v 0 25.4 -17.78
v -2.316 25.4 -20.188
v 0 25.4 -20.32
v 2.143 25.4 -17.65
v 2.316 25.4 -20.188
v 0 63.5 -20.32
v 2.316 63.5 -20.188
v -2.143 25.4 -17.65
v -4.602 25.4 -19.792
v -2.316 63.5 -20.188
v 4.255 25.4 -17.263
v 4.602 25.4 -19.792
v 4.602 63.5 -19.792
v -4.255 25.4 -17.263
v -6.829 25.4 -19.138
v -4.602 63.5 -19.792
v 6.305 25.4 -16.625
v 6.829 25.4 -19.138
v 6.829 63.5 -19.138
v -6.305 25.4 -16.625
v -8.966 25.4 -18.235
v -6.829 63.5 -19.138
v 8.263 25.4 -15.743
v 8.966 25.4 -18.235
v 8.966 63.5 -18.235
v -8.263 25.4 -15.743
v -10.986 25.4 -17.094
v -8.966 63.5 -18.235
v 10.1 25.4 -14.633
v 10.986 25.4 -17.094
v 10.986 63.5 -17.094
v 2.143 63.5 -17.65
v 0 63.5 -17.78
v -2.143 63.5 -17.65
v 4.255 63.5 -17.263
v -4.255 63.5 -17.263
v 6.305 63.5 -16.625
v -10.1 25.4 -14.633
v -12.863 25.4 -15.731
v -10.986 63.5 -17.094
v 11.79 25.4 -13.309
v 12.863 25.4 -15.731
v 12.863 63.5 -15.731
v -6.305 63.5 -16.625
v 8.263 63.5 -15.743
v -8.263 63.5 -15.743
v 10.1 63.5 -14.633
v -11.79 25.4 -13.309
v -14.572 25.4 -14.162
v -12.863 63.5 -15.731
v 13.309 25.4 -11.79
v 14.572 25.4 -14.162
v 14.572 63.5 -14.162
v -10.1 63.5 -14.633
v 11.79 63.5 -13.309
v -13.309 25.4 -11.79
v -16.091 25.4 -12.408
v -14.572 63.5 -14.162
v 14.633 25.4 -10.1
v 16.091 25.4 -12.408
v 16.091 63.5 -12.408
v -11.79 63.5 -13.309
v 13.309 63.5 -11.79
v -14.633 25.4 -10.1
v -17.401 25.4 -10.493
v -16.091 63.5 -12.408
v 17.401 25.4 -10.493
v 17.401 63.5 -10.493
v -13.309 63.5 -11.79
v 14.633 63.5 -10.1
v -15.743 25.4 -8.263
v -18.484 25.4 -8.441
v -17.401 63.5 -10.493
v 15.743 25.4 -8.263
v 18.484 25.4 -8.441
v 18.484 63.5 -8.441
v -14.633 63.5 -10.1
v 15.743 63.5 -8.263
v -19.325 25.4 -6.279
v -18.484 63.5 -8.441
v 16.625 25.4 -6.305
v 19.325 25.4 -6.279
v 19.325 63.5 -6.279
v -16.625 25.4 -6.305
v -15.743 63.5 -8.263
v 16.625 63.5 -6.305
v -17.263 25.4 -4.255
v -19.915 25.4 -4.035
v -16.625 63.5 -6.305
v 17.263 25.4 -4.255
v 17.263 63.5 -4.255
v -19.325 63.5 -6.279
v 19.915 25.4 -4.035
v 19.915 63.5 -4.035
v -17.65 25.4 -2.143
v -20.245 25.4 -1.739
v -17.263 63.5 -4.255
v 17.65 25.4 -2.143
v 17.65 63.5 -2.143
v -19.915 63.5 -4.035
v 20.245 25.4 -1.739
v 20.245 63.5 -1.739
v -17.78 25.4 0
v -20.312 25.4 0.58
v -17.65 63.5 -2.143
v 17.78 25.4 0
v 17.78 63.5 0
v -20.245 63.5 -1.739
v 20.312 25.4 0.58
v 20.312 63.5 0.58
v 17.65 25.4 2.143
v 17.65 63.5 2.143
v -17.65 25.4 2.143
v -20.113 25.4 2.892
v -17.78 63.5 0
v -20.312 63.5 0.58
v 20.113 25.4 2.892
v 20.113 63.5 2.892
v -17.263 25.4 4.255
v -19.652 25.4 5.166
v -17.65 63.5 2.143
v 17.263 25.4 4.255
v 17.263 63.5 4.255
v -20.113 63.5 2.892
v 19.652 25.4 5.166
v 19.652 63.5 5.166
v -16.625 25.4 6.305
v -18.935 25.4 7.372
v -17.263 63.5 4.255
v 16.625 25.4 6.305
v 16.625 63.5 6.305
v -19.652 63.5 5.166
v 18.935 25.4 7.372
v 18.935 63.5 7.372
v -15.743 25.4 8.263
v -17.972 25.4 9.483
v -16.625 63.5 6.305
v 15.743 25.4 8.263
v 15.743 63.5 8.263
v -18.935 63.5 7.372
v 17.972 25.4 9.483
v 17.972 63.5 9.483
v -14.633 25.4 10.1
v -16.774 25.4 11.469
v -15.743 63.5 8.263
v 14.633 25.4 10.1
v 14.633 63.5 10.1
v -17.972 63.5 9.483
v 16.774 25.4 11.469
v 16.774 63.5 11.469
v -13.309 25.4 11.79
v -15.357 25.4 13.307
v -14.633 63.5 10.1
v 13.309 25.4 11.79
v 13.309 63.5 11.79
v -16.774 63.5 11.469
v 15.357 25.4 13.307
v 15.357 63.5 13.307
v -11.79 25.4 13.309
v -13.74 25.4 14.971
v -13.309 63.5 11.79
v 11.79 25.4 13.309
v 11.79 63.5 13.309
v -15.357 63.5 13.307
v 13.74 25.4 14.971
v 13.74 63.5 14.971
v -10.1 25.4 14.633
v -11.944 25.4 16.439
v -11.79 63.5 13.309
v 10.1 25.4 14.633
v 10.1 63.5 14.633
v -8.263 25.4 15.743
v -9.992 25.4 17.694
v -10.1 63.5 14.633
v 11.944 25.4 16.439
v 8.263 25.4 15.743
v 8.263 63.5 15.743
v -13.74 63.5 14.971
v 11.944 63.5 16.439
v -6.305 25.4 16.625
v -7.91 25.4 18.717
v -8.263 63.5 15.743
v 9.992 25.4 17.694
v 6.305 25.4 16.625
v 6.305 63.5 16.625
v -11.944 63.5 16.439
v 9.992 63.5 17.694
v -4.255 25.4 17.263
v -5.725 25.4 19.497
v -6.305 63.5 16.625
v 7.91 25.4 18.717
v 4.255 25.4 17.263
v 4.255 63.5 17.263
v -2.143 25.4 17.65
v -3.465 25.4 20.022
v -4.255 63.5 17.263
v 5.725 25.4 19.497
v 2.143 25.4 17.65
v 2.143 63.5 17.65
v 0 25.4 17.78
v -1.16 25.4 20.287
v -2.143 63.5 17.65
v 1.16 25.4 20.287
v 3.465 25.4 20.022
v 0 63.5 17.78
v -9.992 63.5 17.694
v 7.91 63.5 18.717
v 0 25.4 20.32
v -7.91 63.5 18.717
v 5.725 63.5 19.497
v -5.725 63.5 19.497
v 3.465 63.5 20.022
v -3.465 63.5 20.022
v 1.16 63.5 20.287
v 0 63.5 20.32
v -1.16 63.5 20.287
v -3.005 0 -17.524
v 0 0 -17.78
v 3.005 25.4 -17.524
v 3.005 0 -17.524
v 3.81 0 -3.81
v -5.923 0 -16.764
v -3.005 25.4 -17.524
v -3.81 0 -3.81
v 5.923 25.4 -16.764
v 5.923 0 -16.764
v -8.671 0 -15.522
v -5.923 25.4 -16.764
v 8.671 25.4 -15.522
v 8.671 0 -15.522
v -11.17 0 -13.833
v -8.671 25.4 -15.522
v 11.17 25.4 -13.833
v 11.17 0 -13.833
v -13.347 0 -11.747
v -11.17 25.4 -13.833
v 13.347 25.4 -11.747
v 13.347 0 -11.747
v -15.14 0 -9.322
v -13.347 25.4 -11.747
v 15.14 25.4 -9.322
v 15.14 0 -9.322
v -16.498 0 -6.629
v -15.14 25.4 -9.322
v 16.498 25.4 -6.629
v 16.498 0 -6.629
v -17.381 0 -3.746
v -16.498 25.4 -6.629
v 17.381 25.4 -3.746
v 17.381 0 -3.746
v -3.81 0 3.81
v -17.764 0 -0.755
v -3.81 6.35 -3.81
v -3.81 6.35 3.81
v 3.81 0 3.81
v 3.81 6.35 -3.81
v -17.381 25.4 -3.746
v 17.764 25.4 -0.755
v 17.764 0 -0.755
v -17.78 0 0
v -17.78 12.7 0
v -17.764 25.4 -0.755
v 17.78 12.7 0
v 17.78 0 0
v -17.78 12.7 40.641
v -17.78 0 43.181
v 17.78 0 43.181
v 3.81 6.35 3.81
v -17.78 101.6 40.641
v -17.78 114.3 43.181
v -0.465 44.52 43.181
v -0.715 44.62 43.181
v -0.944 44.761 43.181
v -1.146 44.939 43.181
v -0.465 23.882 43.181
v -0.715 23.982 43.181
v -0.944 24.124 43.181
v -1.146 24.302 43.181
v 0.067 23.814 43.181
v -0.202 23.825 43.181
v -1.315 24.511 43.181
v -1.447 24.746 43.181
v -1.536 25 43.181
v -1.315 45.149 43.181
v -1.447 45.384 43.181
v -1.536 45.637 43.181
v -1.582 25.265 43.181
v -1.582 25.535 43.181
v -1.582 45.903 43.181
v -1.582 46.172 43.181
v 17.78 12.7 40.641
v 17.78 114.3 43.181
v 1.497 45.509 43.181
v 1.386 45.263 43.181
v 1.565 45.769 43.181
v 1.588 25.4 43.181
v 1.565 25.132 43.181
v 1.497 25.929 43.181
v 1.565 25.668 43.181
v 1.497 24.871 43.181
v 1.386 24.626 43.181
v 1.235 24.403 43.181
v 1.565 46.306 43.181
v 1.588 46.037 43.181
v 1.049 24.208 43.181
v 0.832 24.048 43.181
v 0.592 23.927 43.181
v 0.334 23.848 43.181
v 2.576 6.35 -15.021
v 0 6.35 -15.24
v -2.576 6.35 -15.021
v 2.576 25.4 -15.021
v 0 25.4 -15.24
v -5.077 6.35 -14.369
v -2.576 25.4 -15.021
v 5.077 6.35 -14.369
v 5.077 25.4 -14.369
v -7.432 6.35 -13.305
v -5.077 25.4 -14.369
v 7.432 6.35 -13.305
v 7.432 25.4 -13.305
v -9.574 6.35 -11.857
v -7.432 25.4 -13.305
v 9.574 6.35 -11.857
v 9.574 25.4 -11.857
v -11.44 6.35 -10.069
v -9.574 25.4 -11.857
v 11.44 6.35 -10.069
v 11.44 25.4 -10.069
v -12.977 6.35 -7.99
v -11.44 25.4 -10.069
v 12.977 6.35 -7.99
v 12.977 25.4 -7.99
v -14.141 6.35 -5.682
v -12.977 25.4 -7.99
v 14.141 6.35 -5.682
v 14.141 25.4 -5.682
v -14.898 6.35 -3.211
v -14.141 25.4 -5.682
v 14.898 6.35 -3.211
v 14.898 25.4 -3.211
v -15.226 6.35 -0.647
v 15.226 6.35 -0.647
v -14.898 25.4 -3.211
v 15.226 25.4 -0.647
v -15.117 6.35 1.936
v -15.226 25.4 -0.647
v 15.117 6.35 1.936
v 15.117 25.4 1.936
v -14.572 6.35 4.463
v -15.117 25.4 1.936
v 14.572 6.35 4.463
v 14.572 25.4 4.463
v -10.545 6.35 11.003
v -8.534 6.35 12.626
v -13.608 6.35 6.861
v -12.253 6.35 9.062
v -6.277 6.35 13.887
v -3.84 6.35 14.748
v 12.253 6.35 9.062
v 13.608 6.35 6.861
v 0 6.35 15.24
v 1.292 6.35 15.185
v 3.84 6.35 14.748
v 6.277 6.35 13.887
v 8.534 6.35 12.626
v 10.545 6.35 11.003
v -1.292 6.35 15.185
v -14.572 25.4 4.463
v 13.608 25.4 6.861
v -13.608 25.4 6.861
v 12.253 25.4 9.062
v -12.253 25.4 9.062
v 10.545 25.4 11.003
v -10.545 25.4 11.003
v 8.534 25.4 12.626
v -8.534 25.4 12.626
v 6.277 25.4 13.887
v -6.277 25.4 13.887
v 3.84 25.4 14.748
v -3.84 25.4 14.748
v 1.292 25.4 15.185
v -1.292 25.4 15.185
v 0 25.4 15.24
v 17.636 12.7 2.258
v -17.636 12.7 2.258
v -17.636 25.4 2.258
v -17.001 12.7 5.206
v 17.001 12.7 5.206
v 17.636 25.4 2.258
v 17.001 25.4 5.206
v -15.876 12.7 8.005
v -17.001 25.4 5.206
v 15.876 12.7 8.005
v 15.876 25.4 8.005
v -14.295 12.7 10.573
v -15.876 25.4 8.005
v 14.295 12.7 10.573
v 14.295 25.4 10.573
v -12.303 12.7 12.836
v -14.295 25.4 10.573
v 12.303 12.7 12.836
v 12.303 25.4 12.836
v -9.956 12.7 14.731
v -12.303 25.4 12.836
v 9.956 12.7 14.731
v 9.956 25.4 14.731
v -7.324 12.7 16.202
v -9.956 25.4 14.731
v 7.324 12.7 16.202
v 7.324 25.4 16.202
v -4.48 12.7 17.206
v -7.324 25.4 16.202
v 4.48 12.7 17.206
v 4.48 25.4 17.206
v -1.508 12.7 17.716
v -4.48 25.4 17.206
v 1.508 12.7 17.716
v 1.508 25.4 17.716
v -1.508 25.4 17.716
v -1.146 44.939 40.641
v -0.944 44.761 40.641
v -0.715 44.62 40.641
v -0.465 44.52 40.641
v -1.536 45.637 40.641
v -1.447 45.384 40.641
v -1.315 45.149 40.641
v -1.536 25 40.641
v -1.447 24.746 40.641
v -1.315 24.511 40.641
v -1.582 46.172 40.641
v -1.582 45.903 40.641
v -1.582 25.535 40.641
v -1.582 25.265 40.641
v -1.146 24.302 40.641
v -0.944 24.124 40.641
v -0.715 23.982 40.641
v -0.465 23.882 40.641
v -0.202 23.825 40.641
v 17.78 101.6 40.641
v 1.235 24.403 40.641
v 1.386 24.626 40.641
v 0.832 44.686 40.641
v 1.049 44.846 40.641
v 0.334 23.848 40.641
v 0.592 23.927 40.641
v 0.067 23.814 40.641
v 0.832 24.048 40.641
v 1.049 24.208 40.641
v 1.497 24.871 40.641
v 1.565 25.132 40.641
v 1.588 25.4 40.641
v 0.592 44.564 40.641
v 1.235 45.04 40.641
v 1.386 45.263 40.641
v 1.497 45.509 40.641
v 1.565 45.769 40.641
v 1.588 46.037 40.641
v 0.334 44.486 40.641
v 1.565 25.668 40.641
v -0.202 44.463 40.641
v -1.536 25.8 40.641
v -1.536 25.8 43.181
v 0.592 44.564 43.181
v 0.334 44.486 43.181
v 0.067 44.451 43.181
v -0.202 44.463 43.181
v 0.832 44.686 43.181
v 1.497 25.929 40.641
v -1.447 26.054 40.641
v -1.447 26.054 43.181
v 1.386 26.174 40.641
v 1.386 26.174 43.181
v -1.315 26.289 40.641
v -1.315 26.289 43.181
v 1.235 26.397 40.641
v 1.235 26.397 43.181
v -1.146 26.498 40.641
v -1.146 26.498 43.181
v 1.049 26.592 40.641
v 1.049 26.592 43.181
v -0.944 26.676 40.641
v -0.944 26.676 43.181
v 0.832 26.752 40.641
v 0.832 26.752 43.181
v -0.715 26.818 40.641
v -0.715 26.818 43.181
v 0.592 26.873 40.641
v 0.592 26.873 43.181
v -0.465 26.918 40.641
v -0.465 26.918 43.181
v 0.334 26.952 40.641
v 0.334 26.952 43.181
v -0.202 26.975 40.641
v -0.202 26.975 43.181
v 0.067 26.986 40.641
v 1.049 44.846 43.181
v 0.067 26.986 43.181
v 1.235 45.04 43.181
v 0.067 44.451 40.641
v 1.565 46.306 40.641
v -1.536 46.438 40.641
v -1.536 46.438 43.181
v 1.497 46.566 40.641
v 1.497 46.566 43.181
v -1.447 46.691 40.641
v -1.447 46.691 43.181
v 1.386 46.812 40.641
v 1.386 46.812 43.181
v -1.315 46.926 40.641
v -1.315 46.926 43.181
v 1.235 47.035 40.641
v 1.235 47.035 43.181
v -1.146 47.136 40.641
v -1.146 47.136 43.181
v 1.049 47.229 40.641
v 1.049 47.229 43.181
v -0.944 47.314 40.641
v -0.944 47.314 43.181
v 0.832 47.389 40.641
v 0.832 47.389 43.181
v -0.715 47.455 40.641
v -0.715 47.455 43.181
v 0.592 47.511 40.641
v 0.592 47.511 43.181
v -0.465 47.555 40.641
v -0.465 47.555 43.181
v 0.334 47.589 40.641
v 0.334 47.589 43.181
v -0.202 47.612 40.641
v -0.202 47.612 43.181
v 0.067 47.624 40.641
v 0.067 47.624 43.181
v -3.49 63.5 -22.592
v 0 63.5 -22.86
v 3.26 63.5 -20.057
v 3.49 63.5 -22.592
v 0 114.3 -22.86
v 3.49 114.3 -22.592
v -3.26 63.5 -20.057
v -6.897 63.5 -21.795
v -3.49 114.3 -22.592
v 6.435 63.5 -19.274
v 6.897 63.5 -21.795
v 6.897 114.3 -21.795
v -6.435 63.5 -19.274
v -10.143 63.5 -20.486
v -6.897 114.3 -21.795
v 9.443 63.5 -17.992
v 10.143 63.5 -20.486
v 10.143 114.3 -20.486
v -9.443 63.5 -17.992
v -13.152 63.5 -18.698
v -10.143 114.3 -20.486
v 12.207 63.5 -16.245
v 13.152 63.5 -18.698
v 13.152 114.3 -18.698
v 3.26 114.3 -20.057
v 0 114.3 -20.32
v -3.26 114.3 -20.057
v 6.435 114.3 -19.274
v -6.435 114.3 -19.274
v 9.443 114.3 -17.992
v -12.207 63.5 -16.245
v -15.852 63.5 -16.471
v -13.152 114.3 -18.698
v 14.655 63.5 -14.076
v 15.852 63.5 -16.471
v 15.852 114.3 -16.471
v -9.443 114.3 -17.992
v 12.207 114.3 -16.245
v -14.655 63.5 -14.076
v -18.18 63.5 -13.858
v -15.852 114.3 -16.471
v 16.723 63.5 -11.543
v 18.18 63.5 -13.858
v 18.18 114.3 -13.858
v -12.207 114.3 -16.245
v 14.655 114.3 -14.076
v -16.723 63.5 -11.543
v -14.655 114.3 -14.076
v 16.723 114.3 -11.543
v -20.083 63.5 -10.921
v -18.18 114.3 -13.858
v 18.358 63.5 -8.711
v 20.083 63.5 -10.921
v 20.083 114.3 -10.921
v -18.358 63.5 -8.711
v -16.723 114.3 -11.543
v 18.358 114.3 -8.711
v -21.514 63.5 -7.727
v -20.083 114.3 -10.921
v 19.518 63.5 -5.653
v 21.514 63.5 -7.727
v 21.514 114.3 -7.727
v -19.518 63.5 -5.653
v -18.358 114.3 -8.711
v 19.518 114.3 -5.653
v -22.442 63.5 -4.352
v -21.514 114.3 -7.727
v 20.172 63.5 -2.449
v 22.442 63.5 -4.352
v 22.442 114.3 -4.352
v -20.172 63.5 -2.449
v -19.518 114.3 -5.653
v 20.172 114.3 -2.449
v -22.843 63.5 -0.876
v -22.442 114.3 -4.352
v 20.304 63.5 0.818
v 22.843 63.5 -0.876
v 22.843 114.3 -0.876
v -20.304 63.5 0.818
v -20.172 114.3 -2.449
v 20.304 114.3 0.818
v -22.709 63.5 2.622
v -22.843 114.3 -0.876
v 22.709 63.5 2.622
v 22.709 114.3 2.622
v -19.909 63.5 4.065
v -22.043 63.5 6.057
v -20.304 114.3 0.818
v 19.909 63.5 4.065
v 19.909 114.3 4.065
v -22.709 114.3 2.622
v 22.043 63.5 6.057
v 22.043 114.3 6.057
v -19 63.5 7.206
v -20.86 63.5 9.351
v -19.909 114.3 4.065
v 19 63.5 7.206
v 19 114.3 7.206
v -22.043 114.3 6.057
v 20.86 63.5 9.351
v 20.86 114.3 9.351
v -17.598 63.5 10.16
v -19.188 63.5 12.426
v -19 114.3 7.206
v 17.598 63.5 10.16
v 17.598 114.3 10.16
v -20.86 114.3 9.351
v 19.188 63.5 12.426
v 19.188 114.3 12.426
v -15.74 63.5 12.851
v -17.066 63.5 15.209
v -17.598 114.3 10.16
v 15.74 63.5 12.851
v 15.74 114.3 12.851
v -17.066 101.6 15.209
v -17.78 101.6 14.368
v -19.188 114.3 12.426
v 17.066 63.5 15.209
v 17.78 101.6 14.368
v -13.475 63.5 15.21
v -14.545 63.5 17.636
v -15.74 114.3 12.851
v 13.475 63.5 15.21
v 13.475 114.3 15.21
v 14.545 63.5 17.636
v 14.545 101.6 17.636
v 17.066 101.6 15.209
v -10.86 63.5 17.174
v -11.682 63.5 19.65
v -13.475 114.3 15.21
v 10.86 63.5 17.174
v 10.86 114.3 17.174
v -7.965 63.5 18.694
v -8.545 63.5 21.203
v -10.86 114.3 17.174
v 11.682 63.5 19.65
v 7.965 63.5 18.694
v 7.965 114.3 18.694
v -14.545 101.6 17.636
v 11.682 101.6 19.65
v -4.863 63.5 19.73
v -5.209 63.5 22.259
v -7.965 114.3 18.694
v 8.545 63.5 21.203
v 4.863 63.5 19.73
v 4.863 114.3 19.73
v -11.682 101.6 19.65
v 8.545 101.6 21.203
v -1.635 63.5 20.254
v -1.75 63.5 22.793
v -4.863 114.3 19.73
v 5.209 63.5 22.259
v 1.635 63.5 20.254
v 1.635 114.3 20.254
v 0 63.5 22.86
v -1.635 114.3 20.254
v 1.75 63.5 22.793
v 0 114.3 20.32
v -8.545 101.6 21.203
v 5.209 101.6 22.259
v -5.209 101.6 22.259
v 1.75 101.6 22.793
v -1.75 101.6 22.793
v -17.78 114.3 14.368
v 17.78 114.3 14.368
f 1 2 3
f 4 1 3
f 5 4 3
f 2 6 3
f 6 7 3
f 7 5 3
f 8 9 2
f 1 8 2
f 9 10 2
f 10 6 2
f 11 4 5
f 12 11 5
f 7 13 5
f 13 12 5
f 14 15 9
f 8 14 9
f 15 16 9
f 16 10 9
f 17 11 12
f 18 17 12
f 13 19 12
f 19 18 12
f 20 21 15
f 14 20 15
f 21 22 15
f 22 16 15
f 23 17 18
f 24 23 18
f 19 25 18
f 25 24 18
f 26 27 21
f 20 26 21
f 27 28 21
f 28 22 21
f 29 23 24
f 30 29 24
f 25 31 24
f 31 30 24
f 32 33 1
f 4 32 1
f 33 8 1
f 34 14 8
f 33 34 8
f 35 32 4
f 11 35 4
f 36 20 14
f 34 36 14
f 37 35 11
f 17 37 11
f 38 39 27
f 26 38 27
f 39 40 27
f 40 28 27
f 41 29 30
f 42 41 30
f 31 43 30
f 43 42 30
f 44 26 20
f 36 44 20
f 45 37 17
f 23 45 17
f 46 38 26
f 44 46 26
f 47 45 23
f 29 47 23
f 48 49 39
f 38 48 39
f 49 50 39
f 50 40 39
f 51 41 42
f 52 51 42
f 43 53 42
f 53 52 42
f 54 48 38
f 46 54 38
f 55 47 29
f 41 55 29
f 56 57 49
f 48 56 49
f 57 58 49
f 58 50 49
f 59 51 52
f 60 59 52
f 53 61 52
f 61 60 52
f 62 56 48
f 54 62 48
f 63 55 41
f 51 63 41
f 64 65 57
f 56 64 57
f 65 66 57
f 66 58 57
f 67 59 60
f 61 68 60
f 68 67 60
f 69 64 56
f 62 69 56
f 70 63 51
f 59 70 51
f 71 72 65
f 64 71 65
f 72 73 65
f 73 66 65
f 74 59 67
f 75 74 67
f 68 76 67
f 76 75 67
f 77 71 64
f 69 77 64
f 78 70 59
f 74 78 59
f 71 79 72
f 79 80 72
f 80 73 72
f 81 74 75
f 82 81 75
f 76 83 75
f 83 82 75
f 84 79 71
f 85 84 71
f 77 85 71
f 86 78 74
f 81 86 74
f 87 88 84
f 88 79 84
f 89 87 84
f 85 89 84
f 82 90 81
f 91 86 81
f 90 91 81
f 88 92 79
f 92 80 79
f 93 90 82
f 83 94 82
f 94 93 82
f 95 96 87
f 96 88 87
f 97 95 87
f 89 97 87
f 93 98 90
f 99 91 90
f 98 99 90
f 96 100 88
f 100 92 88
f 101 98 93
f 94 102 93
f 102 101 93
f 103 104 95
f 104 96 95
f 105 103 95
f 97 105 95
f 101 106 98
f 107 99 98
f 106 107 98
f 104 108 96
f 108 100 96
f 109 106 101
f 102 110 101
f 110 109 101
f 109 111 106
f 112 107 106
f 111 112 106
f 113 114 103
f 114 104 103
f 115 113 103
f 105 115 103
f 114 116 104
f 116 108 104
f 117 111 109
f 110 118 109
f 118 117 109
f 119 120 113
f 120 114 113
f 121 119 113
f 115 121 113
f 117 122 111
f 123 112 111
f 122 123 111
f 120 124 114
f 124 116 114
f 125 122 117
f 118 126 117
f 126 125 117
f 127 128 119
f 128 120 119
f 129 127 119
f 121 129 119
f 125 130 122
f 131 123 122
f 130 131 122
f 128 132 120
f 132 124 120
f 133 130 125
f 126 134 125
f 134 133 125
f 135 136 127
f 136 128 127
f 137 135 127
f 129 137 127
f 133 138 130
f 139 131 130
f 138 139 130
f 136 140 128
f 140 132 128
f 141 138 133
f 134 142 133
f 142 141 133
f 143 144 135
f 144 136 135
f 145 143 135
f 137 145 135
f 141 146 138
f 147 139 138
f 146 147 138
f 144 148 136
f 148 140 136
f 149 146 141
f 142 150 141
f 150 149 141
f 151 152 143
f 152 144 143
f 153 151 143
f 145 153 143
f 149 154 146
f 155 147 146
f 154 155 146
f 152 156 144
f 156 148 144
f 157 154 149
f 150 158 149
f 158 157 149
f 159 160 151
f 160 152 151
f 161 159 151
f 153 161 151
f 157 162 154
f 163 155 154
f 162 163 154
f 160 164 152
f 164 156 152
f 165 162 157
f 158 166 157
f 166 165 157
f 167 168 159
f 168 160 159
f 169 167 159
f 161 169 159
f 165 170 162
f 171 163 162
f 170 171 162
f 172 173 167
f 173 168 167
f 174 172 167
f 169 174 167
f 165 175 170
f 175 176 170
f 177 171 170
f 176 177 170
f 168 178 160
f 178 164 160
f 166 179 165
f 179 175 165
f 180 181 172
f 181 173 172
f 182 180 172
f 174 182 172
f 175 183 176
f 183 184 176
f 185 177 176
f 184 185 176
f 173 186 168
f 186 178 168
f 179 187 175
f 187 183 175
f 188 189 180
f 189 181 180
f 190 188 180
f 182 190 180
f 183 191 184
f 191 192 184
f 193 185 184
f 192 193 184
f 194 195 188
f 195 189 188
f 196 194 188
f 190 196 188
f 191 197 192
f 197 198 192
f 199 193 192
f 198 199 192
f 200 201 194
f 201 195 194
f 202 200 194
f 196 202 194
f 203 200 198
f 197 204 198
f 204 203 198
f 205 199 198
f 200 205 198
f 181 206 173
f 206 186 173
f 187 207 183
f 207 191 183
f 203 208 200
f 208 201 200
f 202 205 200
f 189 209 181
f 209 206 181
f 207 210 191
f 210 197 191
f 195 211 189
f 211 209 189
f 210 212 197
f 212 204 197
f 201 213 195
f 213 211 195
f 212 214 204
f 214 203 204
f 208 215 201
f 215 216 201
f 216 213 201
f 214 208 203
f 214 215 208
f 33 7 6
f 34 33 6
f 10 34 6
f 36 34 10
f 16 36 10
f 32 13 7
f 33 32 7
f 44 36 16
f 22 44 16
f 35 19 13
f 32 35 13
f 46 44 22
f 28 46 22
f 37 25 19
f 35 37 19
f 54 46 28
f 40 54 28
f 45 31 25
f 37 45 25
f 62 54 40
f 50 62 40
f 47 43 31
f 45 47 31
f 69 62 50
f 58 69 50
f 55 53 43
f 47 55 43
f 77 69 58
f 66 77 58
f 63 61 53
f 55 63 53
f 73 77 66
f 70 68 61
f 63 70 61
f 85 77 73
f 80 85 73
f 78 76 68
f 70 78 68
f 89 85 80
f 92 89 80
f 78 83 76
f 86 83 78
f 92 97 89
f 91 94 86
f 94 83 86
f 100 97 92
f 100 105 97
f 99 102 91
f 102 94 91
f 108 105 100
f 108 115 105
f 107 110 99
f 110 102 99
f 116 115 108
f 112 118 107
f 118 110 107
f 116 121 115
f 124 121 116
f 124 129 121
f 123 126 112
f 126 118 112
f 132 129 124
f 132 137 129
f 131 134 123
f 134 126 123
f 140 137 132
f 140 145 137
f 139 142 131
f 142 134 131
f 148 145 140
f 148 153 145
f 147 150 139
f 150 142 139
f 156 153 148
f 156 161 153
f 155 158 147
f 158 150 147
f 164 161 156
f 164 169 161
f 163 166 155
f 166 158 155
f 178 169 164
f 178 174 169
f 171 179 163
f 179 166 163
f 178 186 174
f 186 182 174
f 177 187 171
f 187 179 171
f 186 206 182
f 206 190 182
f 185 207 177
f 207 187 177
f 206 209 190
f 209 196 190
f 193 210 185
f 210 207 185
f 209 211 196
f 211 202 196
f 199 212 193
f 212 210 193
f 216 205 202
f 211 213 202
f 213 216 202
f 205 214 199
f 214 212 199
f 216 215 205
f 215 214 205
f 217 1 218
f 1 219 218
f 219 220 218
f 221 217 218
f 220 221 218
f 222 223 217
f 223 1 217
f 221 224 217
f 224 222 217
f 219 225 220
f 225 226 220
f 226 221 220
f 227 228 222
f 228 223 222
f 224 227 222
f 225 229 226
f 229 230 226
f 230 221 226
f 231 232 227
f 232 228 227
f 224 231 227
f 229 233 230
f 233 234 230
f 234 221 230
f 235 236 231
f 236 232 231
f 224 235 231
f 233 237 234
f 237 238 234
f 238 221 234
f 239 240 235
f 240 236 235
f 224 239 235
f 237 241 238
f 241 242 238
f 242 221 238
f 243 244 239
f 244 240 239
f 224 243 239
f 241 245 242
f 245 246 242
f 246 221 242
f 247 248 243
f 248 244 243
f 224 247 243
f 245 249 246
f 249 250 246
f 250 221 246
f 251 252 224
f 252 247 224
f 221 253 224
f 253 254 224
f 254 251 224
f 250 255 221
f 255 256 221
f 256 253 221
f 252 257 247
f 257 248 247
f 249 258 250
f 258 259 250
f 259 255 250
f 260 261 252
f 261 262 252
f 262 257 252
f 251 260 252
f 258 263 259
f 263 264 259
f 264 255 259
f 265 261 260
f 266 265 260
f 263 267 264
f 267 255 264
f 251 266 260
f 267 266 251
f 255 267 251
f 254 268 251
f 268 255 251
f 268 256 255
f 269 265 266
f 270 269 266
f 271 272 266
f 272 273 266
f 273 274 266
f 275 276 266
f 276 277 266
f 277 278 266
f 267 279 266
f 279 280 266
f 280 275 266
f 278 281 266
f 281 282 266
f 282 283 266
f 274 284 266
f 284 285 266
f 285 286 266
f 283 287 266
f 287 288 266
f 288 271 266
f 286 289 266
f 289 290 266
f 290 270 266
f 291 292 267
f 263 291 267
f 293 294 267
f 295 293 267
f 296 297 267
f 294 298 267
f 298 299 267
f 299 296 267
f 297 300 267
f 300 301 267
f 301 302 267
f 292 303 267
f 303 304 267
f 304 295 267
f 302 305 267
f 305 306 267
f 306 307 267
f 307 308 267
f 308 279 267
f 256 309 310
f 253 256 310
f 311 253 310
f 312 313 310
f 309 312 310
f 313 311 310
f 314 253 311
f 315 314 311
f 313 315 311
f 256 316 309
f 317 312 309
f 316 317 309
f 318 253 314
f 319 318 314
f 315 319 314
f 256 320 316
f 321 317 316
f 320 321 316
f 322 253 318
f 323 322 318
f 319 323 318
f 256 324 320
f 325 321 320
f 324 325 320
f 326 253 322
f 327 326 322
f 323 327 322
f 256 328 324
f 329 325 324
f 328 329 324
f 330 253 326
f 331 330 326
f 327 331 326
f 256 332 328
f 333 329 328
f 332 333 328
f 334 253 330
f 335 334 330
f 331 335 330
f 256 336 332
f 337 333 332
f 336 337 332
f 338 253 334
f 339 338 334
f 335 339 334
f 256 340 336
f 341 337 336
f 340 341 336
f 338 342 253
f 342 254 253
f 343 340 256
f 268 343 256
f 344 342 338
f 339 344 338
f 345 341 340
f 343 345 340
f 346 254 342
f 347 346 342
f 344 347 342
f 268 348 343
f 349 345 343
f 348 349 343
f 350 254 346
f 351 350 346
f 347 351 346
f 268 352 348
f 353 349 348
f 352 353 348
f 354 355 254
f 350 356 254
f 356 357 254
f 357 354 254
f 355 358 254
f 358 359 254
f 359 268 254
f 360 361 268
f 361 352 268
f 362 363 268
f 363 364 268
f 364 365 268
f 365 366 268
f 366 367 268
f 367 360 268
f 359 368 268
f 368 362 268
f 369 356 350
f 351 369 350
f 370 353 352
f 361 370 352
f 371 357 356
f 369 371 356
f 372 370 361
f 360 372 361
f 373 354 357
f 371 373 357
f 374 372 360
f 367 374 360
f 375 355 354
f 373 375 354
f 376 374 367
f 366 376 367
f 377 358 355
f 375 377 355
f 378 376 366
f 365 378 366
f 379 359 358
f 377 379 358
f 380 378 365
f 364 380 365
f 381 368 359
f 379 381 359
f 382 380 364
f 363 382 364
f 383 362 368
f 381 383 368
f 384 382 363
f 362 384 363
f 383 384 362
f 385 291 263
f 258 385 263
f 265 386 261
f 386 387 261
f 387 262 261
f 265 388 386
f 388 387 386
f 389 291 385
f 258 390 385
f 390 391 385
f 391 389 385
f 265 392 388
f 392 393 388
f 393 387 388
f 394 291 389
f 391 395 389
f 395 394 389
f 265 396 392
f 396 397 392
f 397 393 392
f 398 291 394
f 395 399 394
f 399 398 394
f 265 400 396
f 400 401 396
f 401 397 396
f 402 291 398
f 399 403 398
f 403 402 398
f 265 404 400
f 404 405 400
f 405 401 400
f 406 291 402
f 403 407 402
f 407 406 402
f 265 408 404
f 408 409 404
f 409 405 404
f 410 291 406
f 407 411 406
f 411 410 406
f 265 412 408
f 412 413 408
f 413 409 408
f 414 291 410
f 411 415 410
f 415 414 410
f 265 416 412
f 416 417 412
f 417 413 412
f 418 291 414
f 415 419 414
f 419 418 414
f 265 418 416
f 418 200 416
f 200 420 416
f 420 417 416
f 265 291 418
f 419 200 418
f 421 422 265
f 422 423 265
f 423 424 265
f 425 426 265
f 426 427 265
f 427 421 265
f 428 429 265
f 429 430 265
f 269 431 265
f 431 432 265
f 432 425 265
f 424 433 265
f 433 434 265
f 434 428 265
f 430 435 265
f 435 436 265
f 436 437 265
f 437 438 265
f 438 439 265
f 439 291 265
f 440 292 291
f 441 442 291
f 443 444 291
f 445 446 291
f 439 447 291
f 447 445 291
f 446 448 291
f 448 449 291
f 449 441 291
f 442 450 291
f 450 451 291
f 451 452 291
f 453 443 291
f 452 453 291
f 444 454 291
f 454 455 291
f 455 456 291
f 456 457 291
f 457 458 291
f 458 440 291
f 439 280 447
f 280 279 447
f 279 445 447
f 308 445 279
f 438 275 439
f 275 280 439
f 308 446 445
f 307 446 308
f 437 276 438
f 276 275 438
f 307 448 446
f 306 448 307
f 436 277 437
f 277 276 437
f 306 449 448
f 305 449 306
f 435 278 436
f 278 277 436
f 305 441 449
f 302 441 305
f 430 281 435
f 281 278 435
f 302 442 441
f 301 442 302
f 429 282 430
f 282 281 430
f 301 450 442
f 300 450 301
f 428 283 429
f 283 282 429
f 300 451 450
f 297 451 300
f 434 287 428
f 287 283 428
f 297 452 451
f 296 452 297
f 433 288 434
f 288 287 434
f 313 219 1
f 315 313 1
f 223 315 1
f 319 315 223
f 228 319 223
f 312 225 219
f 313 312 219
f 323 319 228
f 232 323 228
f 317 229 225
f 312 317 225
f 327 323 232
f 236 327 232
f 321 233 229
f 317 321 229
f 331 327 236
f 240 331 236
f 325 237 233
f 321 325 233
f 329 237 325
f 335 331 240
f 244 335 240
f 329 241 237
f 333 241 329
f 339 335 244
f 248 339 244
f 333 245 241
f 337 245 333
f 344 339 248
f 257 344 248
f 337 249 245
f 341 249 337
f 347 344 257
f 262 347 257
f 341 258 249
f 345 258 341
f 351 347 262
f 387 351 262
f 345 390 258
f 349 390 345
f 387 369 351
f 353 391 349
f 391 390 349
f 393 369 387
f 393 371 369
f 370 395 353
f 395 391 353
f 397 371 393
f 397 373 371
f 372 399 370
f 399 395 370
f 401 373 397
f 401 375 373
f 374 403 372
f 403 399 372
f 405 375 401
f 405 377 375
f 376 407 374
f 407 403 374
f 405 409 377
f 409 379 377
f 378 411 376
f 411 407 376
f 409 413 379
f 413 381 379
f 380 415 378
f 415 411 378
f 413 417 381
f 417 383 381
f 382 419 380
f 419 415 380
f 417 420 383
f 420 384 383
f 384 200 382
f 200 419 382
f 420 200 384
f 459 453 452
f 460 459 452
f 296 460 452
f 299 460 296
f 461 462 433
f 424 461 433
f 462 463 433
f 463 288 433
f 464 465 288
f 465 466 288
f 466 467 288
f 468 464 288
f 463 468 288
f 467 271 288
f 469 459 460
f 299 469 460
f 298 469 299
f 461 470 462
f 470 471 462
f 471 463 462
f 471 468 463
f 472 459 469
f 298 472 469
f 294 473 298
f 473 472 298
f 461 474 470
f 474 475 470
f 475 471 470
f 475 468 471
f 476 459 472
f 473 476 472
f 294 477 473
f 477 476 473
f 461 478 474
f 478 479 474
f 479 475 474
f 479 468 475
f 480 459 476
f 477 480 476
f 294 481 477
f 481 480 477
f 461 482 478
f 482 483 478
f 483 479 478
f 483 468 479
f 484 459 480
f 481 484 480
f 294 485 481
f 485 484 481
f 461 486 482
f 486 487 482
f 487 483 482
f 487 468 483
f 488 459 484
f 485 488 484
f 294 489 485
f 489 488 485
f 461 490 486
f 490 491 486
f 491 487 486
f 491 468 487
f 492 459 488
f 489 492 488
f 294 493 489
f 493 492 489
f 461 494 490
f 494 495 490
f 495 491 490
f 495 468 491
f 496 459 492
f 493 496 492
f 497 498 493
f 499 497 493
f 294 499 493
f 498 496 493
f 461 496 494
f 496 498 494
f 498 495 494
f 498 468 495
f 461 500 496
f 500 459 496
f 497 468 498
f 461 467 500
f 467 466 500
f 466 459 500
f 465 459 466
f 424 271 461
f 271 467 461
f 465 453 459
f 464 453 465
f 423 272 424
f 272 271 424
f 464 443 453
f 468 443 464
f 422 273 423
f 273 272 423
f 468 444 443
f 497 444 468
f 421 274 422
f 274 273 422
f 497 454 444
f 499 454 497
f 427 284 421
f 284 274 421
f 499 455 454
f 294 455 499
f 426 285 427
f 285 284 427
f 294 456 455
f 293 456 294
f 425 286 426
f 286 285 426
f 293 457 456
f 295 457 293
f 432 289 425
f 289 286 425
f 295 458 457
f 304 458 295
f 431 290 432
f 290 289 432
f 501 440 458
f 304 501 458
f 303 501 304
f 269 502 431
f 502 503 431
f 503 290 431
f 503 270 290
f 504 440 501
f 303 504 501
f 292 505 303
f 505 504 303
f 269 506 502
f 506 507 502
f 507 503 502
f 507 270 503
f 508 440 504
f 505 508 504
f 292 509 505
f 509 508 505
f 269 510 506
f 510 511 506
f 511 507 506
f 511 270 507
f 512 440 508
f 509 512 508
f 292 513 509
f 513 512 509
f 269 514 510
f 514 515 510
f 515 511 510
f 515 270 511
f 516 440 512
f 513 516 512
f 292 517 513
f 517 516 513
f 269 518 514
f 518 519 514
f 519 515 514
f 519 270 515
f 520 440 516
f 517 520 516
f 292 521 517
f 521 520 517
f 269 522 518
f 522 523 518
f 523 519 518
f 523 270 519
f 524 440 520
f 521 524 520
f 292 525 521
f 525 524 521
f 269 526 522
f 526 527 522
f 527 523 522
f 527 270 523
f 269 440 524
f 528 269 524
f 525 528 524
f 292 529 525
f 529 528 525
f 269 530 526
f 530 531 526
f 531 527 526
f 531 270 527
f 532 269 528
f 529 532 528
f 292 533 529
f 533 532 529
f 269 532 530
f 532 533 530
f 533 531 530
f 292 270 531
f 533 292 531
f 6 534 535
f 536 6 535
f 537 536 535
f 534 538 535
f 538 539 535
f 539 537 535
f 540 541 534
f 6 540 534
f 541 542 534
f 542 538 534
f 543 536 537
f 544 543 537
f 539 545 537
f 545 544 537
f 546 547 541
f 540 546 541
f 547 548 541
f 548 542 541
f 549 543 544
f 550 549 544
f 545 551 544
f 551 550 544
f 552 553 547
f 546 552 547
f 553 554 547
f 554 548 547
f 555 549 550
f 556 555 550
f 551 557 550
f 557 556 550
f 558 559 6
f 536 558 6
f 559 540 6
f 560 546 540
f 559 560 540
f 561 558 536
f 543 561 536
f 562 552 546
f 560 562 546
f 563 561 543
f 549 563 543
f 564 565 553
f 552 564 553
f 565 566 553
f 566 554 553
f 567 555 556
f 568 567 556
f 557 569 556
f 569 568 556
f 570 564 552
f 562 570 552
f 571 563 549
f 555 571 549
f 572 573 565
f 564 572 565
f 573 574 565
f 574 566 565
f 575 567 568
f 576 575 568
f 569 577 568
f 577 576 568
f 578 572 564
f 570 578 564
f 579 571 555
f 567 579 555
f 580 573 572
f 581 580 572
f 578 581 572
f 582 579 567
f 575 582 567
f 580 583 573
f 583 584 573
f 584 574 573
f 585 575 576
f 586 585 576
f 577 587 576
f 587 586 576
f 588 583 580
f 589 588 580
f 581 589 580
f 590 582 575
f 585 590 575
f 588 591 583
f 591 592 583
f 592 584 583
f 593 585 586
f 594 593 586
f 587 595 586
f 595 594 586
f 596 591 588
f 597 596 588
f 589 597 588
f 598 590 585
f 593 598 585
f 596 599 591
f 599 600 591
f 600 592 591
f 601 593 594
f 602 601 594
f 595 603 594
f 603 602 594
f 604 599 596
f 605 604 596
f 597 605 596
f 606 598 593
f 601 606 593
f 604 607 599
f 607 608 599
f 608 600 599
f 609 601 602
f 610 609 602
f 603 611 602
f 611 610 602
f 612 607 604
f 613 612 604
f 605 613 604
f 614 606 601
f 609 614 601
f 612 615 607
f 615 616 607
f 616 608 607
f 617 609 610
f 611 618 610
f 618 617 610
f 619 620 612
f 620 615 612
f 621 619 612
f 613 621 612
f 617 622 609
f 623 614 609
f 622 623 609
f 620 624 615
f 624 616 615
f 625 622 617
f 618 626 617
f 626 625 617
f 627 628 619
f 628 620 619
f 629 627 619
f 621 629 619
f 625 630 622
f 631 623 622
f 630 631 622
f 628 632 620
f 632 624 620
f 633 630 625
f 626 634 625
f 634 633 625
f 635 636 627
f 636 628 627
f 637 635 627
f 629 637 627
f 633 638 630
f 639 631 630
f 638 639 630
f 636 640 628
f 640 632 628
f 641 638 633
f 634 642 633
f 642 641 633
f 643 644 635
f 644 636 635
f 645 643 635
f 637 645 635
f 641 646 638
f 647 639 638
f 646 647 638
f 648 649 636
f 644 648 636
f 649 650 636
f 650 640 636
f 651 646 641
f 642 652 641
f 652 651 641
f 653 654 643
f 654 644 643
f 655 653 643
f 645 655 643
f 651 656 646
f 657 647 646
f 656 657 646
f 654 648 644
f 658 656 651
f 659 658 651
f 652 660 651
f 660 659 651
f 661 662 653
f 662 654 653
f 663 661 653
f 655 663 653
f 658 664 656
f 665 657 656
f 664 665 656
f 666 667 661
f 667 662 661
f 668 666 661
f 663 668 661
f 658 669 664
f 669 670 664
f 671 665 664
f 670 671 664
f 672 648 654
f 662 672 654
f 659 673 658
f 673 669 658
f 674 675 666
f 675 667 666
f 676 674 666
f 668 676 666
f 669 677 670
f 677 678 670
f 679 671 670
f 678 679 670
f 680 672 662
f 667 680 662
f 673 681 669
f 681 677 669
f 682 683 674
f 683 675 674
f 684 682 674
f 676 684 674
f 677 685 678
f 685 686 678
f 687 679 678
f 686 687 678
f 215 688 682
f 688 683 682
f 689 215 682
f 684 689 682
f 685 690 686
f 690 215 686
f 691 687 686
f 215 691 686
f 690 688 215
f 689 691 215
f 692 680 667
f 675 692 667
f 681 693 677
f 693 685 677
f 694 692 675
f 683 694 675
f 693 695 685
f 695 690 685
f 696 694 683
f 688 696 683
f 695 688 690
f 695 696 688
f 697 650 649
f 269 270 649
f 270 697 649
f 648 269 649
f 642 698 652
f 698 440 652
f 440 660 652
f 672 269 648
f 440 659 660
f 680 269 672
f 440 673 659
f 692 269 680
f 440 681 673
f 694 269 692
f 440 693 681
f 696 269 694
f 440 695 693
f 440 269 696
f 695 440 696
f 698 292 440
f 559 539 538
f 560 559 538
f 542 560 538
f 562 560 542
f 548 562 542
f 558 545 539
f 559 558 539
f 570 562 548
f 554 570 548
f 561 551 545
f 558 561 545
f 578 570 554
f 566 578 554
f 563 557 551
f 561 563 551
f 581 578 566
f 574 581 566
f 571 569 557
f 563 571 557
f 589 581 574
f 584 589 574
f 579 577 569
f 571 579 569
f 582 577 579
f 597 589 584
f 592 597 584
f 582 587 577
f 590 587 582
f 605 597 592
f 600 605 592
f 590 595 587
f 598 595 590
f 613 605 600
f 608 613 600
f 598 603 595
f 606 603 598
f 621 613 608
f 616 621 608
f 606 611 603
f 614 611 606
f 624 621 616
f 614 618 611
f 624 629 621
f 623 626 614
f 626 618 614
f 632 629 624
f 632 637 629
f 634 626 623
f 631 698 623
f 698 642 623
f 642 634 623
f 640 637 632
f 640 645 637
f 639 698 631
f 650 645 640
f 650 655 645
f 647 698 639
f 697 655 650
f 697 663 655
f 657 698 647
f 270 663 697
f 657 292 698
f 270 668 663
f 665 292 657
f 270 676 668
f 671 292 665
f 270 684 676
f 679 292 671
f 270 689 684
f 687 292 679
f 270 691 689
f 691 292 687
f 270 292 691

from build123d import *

# Parameters (mm, degrees)
SKETCH1_R           = 15.24
SKETCH1_W           = 7.62
SKETCH1_H           = 7.62
BOSS_EXTRUDE1_DEPTH = 6.35
SKETCH2_R           = 17.78
SKETCH2_R_2         = 15.24
BOSS_EXTRUDE2_DEPTH = 25.4
SKETCH5_R           = 20.32
SKETCH5_R_2         = 17.78
BOSS_EXTRUDE3_DEPTH = 38.1
SKETCH6_R           = 22.86
SKETCH6_R_2         = 20.32
BOSS_EXTRUDE4_DEPTH = 50.8
BOSS_EXTRUDE5_DEPTH = 12.7
BOSS_EXTRUDE6_DEPTH = 2.54
BOSS_EXTRUDE7_DEPTH = 12.7
SKETCH13_R          = 1.5875
CUT_EXTRUDE1_DEPTH  = 10.16


with BuildPart() as part:
    # Sketch1 → Boss-Extrude1 (new body)
    with BuildSketch(Plane(origin=(0, 0, 0), x_dir=(1, 0, 0), z_dir=(0, 1, 0))):
        with Locations(Location((0, 0, 0), (0, 0, 270))):
            Circle(SKETCH1_R)
        Rectangle(SKETCH1_W, SKETCH1_H, mode=Mode.SUBTRACT)
    extrude(amount=BOSS_EXTRUDE1_DEPTH)

    # Sketch2 → Boss-Extrude2 (add)
    with BuildSketch(Plane(origin=(0, 0, 0), x_dir=(1, 0, 0), z_dir=(0, 1, 0))):
        with Locations(Location((0, 0, 0), (0, 0, 270))):
            Circle(SKETCH2_R)
        with Locations(Location((0, 0, 0), (0, 0, 270))):
            Circle(SKETCH2_R_2, mode=Mode.SUBTRACT)
    extrude(amount=BOSS_EXTRUDE2_DEPTH)

    # Sketch7 → Boss-Extrude5 (add)
    with BuildSketch(Plane(origin=(0, 0, 0), x_dir=(1, 0, 0), z_dir=(0, 1, 0))):
        with BuildLine():
            Line((-17.78, -43.180524941), (17.78, -43.180524941))
            Line((17.78, -43.180524941), (17.78, 0))
            ThreePointArc((17.78, 0), (0, -17.78), (-17.78, 0))
            Line((-17.78, 0), (-17.78, -43.180524941))
        make_face()
    extrude(amount=BOSS_EXTRUDE5_DEPTH)

    # Sketch9 → Boss-Extrude6 (add)
    with BuildSketch(Plane.XY.offset(43.180524941)):
        Polygon((-17.78, 12.7), (-17.78, 114.3), (17.78, 114.3), (17.78, 12.7), (17.78, 0), (-17.78, 0), align=None)
    extrude(amount=-BOSS_EXTRUDE6_DEPTH)



with BuildPart() as body_2:
    # Sketch5 → Boss-Extrude3 (new body)
    with BuildSketch(Plane(origin=(0, 25.4, 0), x_dir=(1, 0, 0), z_dir=(0, 1, 0))):
        with Locations(Location((0, 0, 0), (0, 0, 90))):
            Circle(SKETCH5_R)
        with Locations(Location((0, 0, 0), (0, 0, 90))):
            Circle(SKETCH5_R_2, mode=Mode.SUBTRACT)
    extrude(amount=BOSS_EXTRUDE3_DEPTH)


with BuildPart() as body_3:
    # Sketch6 → Boss-Extrude4 (new body)
    with BuildSketch(Plane(origin=(0, 63.5, 0), x_dir=(1, 0, 0), z_dir=(0, 1, 0))):
        with Locations(Location((0, 0, 0), (0, 0, 270))):
            Circle(SKETCH6_R)
        with Locations(Location((0, 0, 0), (0, 0, 270))):
            Circle(SKETCH6_R_2, mode=Mode.SUBTRACT)
    extrude(amount=BOSS_EXTRUDE4_DEPTH)


with BuildPart() as part_1:
    add(part.part)

    add(body_3.part)  # Boss-Extrude7 merges body 3
    # Sketch10 → Boss-Extrude7 (add)
    with BuildSketch(Plane(origin=(0, 114.3, 0), x_dir=(1, 0, 0), z_dir=(0, 1, 0))):
        with BuildLine():
            Line((-17.78, -40.640524941), (-17.78, -14.368409794))
            ThreePointArc((-17.78, -14.368409794), (0, -22.86), (17.78, -14.368409794))
            Line((17.78, -14.368409794), (17.78, -40.640524941))
            Line((17.78, -40.640524941), (-17.78, -40.640524941))
        make_face()
    extrude(amount=-BOSS_EXTRUDE7_DEPTH)

    # Sketch13 → Cut-Extrude1 (cut)
    with BuildSketch(Plane.XY.offset(43.180524941)):
        with Locations((0, 25.4)):
            Circle(SKETCH13_R)
        with Locations((0, 46.0375)):
            Circle(SKETCH13_R)
    extrude(amount=-CUT_EXTRUDE1_DEPTH, mode=Mode.SUBTRACT)


solid = Compound([body_2.part, part_1.part])
